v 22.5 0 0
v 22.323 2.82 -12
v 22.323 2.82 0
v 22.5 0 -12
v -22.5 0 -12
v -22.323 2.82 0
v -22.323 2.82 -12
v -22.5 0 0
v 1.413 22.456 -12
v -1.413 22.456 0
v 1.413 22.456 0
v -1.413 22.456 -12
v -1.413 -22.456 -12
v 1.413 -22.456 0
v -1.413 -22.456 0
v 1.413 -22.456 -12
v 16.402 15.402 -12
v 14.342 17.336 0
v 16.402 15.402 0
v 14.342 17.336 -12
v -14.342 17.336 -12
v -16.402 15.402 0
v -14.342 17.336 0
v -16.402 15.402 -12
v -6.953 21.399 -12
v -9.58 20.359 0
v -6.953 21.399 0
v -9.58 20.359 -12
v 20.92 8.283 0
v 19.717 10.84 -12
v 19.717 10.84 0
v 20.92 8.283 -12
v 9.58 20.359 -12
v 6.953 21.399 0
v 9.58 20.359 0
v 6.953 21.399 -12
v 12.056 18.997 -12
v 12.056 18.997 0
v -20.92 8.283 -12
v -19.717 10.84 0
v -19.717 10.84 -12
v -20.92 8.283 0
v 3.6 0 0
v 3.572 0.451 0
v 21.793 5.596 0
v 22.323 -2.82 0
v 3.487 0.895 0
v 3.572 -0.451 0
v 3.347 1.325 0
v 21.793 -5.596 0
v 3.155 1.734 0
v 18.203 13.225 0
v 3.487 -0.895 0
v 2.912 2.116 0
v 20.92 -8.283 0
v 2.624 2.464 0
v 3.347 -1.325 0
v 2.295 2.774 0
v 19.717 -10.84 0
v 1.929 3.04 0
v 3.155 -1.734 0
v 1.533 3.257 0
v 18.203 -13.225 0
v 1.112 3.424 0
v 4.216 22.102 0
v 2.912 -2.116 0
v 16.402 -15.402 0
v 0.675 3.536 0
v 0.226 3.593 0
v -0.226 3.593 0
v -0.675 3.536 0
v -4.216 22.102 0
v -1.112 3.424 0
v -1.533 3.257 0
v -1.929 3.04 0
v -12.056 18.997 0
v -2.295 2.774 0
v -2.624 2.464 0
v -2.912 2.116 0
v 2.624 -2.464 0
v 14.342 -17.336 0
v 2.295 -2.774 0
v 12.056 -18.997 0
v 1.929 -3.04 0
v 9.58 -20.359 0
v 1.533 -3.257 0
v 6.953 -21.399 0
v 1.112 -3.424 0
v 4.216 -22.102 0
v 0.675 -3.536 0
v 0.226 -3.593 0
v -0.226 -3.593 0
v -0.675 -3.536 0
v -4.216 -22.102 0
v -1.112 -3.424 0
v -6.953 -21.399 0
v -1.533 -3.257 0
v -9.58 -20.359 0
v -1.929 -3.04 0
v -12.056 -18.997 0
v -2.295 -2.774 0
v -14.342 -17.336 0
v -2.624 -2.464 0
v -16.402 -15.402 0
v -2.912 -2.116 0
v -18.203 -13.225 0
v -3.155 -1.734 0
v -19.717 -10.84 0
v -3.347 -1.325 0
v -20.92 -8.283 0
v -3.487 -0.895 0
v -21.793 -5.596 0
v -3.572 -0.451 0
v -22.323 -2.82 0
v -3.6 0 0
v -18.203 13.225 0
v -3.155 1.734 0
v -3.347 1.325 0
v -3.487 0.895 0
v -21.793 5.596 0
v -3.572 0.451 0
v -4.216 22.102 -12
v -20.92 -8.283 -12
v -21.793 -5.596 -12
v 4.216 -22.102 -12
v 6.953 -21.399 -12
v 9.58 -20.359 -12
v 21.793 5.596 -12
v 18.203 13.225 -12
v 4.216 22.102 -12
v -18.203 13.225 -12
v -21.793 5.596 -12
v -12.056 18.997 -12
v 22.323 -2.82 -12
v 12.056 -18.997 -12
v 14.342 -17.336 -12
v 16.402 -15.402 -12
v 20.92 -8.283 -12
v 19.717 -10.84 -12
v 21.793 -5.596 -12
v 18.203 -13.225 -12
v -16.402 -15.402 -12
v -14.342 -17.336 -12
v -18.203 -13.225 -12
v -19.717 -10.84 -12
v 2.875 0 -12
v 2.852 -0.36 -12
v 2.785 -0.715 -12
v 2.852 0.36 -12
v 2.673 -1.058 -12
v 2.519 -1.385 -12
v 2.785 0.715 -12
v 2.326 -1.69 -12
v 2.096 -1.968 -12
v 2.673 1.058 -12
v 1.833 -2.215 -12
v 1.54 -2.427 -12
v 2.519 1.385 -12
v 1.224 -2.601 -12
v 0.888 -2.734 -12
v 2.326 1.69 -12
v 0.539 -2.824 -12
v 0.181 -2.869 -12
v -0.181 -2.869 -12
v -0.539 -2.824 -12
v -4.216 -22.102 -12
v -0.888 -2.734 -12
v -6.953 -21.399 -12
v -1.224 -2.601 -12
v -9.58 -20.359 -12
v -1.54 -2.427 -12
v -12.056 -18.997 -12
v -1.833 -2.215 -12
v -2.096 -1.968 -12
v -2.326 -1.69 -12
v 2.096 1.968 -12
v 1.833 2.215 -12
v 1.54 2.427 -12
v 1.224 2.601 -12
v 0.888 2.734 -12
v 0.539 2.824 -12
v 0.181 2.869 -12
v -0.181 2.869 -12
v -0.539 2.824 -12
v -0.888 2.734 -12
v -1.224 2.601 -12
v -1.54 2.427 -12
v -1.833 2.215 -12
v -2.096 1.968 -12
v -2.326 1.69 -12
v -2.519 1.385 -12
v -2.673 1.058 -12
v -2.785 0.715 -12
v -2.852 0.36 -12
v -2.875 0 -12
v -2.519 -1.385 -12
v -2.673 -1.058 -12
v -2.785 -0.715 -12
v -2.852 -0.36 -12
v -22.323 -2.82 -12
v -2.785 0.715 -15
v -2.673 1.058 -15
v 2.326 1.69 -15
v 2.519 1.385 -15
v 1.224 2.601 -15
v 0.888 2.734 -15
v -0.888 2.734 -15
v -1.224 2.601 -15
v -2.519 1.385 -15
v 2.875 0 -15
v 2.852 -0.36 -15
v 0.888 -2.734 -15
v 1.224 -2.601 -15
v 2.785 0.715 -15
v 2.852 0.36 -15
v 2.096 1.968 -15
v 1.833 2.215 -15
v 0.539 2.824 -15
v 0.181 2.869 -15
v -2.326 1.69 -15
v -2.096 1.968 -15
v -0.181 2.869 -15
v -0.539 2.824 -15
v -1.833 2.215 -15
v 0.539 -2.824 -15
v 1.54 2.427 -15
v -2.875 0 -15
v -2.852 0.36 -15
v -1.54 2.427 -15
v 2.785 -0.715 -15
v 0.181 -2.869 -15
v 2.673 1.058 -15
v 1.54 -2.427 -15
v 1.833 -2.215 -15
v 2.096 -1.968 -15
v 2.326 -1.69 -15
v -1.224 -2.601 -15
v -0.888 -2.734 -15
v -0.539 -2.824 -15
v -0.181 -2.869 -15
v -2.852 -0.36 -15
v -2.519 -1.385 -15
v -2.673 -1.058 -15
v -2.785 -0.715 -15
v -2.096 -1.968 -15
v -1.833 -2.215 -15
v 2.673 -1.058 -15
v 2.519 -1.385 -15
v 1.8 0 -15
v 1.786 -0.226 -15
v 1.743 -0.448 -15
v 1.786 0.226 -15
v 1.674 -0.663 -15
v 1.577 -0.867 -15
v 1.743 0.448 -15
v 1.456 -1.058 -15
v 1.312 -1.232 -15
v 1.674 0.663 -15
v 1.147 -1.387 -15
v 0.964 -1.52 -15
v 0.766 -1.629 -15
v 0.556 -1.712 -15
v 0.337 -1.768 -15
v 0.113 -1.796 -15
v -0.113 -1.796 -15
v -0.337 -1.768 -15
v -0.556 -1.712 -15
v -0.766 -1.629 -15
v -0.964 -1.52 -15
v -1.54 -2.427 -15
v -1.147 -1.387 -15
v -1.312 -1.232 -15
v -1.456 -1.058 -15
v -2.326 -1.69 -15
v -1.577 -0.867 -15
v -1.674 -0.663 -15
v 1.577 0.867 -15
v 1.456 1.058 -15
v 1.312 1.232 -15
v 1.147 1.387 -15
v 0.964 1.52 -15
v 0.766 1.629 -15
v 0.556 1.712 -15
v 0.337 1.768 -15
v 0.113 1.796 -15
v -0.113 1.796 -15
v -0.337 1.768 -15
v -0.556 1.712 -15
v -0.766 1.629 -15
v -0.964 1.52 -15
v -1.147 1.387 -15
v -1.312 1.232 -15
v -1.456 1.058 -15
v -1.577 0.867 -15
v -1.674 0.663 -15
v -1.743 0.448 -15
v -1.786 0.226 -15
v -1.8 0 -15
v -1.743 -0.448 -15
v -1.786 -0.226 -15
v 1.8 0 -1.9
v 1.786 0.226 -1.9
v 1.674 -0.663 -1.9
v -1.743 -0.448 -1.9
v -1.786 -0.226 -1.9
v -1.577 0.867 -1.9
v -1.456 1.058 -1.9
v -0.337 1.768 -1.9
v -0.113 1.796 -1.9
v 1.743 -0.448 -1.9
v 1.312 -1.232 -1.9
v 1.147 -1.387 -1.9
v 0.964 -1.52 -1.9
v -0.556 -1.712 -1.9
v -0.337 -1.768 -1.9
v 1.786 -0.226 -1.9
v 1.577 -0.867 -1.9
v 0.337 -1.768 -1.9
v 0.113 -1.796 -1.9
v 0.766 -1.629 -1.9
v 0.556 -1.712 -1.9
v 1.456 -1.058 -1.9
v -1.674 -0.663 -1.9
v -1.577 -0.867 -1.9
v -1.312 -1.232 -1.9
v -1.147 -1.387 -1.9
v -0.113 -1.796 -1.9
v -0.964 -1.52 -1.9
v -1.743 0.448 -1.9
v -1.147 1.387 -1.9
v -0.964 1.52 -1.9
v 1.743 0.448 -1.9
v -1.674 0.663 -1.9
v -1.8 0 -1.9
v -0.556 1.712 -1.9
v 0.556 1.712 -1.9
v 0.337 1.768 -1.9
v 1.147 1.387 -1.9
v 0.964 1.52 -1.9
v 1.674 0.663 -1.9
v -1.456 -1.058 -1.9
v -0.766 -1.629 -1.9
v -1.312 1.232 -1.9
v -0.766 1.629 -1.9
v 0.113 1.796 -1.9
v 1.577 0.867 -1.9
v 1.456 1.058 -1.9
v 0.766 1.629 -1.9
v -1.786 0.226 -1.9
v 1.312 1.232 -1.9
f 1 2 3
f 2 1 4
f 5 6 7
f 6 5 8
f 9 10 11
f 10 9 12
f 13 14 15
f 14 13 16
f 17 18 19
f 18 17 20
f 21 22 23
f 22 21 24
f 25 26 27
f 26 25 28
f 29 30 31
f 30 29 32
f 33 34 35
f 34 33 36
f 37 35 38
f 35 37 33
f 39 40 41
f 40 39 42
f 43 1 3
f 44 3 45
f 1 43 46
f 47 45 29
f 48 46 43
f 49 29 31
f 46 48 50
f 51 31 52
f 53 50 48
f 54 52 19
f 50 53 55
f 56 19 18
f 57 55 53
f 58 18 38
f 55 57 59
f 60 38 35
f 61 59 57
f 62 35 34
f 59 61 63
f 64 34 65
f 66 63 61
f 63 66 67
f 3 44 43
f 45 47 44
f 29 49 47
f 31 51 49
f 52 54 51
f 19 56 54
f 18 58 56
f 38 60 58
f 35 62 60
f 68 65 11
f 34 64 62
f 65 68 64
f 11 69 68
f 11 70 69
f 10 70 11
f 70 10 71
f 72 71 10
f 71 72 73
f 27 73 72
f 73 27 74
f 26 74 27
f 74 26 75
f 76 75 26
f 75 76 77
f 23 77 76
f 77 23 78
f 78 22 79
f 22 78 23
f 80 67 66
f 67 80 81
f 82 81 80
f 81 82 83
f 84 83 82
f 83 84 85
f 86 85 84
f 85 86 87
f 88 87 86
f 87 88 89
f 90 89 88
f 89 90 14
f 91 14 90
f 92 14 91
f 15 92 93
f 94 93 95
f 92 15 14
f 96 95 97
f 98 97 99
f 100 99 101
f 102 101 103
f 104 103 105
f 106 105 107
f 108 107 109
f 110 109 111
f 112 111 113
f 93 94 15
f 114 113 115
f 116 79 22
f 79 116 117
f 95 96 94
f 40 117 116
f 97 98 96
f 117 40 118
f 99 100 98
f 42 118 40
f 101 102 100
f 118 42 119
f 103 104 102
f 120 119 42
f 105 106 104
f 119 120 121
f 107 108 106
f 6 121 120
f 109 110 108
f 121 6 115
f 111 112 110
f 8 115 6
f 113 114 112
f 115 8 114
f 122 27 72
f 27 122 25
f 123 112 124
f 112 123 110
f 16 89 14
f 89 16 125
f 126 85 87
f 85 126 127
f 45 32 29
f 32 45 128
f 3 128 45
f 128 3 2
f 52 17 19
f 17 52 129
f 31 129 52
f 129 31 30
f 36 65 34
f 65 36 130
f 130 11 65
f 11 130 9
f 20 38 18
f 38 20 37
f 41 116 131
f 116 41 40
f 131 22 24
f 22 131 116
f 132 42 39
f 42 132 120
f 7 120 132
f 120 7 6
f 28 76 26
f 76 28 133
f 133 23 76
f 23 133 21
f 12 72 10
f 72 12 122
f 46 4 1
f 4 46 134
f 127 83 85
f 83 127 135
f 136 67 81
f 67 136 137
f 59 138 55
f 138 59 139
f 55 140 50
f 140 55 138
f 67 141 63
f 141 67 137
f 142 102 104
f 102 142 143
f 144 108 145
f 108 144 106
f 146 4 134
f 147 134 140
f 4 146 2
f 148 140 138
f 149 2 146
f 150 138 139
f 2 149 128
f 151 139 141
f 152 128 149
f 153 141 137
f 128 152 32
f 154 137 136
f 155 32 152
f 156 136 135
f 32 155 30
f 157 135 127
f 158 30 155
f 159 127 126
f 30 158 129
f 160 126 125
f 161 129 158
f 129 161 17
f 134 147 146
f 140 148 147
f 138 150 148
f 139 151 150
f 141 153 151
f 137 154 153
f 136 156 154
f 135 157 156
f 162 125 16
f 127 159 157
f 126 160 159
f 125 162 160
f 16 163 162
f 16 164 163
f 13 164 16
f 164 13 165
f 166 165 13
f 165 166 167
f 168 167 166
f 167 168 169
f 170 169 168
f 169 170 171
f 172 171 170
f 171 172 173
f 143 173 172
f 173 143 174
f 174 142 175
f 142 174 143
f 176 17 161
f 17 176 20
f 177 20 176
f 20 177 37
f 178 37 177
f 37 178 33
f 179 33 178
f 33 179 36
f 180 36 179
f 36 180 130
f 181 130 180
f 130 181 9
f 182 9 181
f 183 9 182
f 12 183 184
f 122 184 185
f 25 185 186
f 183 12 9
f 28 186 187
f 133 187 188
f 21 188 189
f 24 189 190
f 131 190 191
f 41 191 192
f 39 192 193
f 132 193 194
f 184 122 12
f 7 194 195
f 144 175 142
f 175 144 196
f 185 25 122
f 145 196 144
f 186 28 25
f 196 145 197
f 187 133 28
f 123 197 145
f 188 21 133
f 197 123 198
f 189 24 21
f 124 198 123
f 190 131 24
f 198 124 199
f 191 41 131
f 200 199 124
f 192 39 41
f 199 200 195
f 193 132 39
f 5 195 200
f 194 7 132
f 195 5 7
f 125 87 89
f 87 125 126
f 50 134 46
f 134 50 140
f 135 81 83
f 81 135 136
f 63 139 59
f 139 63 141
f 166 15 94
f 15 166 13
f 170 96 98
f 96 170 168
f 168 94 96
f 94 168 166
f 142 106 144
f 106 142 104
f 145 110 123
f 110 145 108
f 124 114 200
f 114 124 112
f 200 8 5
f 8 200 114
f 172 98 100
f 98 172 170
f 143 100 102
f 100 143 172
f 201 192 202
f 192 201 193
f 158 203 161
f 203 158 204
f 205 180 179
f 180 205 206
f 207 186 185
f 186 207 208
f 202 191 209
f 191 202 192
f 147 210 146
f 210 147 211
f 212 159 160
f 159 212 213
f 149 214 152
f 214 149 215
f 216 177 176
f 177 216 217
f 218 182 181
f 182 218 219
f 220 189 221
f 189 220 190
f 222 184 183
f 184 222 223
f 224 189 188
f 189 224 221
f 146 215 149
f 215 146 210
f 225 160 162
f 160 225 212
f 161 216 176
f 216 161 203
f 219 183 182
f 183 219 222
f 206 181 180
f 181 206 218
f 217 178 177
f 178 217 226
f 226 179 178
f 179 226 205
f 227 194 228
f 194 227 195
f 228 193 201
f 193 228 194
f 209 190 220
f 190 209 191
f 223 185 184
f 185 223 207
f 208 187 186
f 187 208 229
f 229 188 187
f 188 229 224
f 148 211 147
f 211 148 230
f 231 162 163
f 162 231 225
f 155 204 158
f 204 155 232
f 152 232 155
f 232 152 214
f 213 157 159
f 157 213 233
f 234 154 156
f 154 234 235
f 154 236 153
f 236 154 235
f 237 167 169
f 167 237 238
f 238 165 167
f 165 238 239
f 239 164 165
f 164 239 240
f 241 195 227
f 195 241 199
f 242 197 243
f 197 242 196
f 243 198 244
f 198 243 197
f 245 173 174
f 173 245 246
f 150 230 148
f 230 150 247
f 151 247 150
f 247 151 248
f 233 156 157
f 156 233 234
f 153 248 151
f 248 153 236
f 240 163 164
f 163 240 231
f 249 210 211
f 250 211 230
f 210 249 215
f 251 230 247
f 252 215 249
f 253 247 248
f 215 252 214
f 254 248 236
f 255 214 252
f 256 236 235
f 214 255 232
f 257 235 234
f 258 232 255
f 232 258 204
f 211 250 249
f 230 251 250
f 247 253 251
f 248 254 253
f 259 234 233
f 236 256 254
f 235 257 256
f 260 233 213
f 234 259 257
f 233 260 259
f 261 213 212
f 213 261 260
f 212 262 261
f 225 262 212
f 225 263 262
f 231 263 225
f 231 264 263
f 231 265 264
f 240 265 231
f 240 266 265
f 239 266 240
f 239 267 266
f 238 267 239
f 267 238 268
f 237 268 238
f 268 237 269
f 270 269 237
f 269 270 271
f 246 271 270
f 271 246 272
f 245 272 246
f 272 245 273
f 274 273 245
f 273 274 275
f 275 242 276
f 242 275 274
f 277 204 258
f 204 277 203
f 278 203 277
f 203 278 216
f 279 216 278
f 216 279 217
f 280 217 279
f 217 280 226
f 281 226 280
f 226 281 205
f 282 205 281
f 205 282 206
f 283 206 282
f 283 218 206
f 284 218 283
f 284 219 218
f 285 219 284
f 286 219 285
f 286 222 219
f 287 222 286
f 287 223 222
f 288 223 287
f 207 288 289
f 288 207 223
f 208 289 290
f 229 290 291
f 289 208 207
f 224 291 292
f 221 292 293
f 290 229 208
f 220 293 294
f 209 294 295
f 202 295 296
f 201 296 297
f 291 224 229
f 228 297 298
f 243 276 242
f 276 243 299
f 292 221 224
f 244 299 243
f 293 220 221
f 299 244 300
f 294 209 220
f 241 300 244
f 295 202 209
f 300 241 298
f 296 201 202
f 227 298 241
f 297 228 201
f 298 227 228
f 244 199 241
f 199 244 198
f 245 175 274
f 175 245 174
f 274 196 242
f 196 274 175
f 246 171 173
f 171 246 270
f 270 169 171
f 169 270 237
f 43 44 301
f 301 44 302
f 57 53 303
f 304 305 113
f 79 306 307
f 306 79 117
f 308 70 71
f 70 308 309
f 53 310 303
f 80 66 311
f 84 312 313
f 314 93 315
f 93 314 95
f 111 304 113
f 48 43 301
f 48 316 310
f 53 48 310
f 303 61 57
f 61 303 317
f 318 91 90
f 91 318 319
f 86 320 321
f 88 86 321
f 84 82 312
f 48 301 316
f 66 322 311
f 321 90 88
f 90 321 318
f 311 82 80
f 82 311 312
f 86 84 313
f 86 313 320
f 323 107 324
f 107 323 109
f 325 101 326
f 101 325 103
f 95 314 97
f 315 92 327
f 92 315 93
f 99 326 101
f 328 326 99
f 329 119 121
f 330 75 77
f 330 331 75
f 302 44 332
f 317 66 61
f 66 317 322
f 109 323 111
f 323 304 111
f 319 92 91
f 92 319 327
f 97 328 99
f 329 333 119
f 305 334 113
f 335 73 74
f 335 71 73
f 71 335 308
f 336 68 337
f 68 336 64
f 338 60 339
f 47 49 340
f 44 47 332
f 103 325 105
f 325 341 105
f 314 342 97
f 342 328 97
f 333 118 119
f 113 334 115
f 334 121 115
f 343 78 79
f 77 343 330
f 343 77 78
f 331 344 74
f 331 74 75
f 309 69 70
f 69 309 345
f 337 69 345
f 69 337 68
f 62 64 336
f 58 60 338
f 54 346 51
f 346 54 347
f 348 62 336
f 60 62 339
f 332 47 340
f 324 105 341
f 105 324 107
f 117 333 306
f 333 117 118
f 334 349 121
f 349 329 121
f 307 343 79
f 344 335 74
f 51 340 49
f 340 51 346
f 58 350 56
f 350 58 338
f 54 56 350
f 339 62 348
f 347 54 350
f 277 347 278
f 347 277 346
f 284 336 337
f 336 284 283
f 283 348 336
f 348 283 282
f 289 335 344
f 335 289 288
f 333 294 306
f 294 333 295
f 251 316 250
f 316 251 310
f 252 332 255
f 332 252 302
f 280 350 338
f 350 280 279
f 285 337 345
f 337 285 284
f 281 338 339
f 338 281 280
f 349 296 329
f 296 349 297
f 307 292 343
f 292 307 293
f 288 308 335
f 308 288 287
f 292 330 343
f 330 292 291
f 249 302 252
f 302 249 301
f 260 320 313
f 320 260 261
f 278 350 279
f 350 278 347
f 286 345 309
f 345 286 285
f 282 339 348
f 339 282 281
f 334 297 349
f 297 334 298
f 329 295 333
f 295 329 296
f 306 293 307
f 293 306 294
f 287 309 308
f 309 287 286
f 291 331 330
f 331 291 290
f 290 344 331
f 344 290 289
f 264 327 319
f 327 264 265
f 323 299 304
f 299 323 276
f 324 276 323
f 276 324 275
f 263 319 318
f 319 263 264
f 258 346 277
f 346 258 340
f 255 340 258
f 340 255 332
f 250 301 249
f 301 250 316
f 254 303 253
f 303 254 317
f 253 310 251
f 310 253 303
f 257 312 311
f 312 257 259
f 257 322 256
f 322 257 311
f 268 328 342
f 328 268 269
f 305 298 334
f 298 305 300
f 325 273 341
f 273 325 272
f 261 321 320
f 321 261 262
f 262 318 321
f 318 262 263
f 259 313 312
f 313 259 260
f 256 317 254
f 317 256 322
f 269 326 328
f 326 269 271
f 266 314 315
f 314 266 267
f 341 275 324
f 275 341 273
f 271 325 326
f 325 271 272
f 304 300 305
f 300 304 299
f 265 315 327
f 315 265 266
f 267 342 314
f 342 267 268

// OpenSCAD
$fn = 50;


difference() {
	union() {
		translate(v = [0, 0, -12.0000000000]) {
			cylinder(h = 12, r = 22.5000000000);
		}
		translate(v = [0, 0, -15.0000000000]) {
			cylinder(h = 15, r = 2.8750000000);
		}
	}
	union() {
		translate(v = [0, 0, 0]) {
			rotate(a = [0, 0, 0]) {
				difference() {
					union() {
						translate(v = [0, 0, -15.0000000000]) {
							cylinder(h = 15, r = 1.5000000000);
						}
						translate(v = [0, 0, -1.9000000000]) {
							cylinder(h = 1.9000000000, r1 = 1.8000000000, r2 = 3.6000000000);
						}
						translate(v = [0, 0, -15.0000000000]) {
							cylinder(h = 15, r = 1.8000000000);
						}
						translate(v = [0, 0, -15.0000000000]) {
							cylinder(h = 15, r = 1.5000000000);
						}
					}
					union();
				}
			}
		}
	}
}
